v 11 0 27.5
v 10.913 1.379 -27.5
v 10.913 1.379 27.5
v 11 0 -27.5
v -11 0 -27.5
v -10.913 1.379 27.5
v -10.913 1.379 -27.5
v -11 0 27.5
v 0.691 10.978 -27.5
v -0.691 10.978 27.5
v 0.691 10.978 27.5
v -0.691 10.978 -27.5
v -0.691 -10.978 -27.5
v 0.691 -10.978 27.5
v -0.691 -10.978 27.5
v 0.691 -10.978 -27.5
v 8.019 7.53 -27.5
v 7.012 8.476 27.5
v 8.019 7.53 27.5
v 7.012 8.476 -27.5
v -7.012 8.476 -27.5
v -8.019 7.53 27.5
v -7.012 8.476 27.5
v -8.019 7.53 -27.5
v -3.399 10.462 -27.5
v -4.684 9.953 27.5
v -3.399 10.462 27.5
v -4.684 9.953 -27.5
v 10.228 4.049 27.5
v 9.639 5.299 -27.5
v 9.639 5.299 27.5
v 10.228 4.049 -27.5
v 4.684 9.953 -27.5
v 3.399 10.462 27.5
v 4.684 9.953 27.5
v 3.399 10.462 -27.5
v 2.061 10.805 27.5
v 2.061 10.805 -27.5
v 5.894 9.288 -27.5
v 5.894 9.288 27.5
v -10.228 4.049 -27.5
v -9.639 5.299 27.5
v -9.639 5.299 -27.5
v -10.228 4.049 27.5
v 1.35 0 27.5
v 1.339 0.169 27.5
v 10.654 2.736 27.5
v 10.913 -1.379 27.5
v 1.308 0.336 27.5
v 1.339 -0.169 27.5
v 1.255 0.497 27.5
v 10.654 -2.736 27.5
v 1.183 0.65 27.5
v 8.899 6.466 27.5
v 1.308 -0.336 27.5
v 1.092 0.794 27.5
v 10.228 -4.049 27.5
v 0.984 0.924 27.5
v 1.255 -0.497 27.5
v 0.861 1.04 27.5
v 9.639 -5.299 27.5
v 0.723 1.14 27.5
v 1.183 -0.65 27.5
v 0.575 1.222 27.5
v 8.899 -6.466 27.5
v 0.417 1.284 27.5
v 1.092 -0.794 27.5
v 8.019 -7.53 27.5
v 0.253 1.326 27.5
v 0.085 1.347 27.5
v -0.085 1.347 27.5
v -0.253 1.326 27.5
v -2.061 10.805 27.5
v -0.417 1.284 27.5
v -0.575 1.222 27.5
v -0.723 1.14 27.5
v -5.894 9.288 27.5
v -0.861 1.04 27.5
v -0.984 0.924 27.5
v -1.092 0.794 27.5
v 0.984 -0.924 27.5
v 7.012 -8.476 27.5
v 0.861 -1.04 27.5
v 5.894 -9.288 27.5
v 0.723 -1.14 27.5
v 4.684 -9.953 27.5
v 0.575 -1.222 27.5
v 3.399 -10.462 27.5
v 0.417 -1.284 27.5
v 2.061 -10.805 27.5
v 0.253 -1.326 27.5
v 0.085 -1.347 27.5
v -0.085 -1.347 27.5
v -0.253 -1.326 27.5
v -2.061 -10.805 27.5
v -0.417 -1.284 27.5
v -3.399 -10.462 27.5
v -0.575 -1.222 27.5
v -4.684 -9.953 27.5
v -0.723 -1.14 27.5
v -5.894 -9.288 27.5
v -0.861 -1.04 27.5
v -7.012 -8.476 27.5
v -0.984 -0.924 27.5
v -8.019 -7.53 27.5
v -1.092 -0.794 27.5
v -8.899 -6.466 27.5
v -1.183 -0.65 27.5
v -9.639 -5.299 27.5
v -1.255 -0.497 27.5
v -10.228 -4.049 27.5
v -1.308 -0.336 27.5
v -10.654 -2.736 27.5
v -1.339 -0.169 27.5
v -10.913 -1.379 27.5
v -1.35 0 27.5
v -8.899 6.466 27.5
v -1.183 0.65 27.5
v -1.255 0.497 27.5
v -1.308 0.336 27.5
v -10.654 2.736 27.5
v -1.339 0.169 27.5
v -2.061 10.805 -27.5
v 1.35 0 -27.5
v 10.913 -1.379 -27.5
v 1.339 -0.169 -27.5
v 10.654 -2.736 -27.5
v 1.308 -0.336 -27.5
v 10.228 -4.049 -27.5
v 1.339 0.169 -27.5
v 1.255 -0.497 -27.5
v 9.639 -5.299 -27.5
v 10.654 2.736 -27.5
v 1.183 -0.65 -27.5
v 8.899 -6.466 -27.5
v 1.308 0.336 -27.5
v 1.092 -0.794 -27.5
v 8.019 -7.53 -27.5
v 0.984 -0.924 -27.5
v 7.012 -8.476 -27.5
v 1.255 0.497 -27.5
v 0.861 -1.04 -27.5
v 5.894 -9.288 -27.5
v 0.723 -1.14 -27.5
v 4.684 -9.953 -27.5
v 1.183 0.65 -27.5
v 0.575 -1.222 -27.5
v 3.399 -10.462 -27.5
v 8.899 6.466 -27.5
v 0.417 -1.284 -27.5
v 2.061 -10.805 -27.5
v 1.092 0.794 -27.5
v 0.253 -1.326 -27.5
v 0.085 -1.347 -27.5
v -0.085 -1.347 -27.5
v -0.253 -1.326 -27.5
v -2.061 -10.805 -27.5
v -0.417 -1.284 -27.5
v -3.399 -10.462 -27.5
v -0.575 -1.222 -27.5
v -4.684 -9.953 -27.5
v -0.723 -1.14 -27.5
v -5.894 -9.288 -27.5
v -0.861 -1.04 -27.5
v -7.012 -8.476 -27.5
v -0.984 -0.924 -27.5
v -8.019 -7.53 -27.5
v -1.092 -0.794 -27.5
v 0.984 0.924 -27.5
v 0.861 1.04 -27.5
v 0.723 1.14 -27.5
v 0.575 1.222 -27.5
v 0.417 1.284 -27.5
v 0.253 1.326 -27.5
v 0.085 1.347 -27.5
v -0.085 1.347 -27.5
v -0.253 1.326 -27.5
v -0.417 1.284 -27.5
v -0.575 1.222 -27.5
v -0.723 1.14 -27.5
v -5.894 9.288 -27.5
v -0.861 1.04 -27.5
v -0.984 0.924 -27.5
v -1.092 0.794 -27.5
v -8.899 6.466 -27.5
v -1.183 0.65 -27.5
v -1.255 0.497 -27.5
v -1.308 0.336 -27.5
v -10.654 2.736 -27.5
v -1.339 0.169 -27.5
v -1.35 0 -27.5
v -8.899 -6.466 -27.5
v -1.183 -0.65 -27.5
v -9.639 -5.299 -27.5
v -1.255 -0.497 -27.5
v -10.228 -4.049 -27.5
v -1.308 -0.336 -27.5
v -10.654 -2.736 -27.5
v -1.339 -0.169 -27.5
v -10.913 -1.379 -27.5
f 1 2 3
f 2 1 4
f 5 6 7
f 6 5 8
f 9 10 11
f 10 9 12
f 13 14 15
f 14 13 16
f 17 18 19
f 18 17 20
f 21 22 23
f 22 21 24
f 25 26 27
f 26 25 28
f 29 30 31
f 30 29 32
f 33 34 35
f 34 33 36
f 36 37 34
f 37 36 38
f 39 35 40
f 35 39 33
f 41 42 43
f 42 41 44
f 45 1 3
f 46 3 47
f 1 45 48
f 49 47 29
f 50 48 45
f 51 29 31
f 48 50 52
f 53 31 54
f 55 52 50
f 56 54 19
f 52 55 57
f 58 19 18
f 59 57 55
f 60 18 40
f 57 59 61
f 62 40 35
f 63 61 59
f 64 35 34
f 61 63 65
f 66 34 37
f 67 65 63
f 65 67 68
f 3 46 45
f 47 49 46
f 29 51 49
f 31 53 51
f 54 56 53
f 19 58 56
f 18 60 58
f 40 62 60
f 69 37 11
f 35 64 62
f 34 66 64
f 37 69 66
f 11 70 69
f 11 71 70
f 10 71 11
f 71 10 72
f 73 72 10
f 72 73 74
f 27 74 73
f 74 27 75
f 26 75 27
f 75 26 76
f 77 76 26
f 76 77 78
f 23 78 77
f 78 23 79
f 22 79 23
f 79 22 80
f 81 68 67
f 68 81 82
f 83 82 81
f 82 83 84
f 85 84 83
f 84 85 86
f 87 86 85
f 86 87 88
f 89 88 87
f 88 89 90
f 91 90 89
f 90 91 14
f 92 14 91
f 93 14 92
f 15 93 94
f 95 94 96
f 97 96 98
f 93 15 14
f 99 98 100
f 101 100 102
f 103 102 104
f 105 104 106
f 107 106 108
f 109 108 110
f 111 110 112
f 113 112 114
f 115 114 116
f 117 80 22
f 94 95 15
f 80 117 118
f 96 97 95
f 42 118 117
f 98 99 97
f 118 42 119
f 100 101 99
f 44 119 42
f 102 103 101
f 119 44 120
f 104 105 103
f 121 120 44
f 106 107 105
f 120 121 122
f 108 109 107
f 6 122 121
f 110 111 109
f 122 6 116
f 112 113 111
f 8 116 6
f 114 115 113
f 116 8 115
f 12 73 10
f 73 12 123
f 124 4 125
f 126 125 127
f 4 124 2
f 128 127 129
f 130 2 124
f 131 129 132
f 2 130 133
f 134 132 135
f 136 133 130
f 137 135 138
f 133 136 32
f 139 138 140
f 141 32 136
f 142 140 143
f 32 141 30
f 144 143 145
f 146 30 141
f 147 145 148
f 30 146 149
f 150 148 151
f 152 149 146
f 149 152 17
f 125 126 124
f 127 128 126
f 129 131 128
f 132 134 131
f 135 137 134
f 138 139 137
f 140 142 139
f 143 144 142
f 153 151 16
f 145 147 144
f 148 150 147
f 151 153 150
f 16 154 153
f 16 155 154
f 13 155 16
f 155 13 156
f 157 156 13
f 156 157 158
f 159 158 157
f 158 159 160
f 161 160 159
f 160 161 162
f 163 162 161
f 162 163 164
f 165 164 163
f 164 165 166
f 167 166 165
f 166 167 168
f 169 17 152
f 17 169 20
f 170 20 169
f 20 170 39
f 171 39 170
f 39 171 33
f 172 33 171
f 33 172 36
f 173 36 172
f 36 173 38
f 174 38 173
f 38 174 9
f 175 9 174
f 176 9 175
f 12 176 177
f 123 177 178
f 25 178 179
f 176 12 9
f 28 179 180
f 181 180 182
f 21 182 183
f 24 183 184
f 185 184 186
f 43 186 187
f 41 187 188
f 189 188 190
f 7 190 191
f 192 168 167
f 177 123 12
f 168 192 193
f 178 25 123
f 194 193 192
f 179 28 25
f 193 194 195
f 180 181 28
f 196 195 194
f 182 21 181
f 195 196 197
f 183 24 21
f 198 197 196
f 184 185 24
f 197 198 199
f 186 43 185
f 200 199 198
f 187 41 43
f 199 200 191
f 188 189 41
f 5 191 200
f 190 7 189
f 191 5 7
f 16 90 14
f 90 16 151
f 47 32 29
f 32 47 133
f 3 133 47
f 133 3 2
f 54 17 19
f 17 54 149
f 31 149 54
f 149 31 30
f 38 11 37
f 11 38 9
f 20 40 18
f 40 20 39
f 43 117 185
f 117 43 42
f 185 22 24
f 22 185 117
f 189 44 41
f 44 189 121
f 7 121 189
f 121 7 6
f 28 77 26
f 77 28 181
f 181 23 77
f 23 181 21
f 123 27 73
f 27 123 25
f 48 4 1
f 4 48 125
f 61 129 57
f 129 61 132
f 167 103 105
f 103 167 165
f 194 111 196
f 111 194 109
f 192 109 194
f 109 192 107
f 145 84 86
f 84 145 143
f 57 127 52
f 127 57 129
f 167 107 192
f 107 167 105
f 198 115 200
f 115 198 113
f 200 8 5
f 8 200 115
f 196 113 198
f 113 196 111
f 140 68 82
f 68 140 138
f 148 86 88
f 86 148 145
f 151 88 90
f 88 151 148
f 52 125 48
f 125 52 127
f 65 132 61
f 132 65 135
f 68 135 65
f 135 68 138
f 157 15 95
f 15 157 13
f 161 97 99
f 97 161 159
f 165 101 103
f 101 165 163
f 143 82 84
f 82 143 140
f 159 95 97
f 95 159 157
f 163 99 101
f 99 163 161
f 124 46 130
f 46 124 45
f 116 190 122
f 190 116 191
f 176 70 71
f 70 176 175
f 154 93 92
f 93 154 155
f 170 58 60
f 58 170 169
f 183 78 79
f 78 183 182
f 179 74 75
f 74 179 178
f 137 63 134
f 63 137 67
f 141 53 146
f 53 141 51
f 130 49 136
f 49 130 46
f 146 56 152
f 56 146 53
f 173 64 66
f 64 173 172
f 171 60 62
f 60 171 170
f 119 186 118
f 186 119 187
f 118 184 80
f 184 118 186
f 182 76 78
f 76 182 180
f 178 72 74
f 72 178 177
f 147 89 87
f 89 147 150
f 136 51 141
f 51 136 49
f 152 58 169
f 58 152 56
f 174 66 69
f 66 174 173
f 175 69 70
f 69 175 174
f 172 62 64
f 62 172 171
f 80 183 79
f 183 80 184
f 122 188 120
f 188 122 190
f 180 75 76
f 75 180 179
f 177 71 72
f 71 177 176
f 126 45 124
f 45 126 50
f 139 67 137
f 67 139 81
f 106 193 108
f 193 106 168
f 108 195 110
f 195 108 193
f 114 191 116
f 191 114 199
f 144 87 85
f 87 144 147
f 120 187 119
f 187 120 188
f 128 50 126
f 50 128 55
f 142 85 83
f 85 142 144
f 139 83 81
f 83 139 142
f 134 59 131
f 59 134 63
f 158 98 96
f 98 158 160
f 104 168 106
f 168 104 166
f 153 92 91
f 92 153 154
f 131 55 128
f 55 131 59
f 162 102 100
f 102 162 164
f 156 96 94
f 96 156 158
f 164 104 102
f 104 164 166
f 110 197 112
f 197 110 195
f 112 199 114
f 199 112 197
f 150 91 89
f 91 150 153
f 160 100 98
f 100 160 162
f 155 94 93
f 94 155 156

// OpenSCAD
$fn = 50;


difference() {
	union() {
		translate(v = [0, 0, -27.5000000000]) {
			cylinder(h = 55, r = 11.0000000000);
		}
	}
	union() {
		translate(v = [0, 0, -100.0000000000]) {
			cylinder(h = 200, r = 1.3500000000);
		}
	}
}
